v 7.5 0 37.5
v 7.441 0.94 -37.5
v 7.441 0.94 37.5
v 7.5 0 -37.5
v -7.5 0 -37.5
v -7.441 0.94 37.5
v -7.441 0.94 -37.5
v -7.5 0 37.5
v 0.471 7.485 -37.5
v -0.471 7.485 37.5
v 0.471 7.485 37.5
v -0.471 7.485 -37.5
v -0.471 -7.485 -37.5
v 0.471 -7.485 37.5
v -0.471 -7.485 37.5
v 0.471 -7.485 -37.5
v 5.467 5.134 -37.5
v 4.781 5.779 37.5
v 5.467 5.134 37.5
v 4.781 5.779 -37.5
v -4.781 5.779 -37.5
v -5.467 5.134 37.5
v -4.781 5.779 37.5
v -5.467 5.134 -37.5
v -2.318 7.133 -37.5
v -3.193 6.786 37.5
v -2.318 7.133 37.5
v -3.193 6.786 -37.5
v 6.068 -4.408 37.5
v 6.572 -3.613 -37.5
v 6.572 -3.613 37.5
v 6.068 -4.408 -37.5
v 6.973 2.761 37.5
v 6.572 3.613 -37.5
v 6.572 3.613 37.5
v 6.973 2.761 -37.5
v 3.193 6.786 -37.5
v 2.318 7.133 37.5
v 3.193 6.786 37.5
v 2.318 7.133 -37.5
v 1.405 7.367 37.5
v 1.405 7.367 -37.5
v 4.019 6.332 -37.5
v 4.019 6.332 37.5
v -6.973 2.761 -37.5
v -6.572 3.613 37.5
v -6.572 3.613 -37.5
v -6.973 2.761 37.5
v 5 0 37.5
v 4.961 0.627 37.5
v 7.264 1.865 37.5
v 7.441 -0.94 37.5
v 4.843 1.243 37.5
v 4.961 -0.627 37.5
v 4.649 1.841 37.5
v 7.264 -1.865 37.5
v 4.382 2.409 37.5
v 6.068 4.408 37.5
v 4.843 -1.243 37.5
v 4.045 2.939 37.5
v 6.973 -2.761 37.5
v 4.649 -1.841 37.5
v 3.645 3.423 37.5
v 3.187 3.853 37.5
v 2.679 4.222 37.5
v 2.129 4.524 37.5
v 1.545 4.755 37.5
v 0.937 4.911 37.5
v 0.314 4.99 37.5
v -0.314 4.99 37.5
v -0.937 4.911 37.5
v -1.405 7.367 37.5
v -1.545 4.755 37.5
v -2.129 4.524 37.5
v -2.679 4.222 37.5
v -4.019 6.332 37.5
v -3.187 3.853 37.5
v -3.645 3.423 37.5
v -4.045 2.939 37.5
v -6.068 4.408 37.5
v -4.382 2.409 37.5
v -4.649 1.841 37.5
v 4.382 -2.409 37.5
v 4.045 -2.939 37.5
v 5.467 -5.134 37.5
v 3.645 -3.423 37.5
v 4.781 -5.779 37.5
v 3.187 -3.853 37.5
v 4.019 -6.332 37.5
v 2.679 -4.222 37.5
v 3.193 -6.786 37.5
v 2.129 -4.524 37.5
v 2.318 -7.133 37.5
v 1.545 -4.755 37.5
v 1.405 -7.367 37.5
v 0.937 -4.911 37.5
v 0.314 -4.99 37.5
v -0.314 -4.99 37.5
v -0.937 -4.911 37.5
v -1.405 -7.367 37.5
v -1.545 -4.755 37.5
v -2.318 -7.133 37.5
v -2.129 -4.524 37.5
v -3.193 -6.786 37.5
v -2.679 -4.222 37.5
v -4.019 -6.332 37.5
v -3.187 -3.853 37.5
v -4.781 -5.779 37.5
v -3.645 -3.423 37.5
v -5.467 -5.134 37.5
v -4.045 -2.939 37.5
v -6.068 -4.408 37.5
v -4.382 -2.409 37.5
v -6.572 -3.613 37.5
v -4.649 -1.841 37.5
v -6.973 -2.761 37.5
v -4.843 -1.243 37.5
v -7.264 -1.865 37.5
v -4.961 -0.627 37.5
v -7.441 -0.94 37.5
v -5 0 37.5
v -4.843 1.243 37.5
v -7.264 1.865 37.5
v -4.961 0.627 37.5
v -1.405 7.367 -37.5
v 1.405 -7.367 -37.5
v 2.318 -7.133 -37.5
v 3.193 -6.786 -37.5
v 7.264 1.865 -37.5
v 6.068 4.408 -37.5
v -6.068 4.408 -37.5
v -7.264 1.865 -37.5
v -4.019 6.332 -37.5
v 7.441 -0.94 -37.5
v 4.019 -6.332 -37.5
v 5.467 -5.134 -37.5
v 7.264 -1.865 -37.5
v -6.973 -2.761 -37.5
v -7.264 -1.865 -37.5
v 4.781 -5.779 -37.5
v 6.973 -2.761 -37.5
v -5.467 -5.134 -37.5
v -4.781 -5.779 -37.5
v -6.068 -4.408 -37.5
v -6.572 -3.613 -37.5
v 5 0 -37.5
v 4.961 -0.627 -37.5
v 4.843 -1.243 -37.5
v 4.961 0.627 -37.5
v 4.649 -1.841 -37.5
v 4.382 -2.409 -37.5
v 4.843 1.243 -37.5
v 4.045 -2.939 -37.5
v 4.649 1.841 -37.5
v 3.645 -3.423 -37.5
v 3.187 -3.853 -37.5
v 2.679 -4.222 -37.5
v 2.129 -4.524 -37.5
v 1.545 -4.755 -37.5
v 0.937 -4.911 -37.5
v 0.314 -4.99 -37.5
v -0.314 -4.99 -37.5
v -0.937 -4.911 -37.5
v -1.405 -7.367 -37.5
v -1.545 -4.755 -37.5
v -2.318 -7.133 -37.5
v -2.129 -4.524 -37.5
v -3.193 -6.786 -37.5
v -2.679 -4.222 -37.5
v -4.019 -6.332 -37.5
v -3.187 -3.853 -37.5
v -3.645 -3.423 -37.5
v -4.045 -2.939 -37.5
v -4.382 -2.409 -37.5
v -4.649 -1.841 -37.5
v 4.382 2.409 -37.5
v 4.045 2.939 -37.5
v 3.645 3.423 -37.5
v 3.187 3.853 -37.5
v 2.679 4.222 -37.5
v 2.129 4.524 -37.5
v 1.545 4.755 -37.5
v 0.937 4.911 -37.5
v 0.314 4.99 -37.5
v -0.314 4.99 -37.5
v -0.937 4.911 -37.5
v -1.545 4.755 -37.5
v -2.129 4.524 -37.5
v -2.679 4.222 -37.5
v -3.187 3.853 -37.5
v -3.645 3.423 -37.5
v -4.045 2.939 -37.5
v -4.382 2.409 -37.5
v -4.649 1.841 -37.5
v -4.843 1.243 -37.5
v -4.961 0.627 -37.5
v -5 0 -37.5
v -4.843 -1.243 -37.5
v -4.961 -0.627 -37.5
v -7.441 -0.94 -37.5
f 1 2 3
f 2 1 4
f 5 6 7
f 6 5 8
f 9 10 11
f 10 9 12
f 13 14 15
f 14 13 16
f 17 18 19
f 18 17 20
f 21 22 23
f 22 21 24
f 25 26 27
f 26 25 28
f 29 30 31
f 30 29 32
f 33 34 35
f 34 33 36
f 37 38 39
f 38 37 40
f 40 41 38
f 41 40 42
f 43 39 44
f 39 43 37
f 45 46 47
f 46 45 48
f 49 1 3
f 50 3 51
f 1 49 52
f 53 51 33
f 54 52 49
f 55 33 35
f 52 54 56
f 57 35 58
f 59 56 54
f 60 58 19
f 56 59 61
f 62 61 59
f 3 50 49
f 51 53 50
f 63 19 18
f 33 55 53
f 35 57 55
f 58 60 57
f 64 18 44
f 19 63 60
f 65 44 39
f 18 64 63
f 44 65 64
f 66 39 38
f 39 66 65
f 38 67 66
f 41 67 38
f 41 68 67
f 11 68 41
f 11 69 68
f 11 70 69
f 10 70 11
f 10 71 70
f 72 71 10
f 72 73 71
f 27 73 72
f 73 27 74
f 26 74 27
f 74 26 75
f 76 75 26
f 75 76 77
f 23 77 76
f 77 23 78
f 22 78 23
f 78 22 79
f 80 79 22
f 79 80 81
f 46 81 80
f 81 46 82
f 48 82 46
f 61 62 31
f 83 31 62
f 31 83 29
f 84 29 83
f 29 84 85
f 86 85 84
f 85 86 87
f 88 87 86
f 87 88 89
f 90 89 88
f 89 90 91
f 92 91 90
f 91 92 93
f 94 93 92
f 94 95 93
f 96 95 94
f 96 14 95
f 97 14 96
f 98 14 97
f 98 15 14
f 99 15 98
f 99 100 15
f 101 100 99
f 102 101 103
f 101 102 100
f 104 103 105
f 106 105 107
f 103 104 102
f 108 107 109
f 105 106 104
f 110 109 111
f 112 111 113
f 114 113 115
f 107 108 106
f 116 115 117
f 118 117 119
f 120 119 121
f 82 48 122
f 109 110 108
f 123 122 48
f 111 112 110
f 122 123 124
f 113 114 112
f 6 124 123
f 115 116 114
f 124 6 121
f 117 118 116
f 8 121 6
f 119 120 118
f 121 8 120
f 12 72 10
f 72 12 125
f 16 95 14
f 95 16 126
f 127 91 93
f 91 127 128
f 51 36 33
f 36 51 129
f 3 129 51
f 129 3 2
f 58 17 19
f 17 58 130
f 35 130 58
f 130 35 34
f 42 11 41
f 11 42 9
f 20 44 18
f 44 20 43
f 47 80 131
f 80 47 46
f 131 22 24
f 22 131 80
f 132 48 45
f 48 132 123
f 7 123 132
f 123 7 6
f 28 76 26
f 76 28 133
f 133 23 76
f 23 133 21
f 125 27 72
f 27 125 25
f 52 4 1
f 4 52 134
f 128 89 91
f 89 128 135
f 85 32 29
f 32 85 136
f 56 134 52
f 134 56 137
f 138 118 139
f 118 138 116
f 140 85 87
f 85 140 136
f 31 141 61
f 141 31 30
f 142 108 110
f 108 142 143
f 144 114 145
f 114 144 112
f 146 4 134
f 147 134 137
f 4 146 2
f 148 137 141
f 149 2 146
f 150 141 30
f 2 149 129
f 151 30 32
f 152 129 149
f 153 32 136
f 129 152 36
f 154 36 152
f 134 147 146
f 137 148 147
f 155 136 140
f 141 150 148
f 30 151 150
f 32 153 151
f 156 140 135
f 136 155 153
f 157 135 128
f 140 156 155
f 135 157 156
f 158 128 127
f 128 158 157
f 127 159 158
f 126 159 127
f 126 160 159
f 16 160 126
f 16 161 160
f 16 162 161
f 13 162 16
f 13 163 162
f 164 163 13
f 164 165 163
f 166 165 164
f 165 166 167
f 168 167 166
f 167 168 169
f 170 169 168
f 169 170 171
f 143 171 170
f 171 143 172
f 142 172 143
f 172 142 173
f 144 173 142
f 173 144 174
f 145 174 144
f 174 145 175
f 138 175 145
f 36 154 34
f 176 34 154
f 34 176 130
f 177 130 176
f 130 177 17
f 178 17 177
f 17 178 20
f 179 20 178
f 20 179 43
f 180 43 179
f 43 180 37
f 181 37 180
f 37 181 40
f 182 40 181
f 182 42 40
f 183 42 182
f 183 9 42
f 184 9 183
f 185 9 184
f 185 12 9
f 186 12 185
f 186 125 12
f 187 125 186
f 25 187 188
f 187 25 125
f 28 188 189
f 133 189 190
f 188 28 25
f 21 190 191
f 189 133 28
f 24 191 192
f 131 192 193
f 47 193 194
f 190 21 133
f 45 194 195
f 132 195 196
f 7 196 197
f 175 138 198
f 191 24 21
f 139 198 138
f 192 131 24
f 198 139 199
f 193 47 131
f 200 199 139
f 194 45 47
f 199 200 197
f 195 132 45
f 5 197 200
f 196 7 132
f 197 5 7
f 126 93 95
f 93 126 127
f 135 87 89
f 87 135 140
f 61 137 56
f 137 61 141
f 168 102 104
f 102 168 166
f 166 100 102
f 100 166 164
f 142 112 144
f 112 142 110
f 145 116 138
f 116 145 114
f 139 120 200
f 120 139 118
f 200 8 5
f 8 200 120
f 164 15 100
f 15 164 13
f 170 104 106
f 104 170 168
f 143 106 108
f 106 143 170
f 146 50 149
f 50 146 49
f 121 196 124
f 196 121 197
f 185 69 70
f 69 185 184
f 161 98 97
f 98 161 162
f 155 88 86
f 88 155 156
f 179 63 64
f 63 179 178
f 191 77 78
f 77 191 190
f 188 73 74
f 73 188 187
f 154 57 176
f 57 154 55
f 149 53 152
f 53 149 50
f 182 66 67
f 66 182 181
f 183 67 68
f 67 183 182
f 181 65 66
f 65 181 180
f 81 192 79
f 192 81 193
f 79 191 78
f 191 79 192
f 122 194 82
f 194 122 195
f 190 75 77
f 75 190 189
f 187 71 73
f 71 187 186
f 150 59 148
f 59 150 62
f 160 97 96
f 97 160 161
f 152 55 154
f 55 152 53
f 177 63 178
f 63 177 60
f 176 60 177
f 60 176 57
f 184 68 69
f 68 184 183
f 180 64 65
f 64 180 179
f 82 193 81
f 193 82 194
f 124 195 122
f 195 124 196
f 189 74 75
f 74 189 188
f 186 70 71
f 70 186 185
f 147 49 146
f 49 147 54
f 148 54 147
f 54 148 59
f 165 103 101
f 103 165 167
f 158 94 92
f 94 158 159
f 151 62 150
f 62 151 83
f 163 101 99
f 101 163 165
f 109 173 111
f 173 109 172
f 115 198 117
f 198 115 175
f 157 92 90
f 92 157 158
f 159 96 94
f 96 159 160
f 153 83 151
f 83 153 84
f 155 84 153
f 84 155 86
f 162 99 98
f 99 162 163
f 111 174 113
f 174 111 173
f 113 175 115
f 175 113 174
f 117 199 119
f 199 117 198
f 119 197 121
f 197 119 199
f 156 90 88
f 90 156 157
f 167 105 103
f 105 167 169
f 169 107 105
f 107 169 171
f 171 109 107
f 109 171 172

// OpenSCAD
$fn = 50;


difference() {
	union() {
		translate(v = [0, 0, -37.5000000000]) {
			cylinder(h = 75, r = 7.5000000000);
		}
	}
	union() {
		translate(v = [0, 0, -100.0000000000]) {
			cylinder(h = 200, r = 5);
		}
	}
}
